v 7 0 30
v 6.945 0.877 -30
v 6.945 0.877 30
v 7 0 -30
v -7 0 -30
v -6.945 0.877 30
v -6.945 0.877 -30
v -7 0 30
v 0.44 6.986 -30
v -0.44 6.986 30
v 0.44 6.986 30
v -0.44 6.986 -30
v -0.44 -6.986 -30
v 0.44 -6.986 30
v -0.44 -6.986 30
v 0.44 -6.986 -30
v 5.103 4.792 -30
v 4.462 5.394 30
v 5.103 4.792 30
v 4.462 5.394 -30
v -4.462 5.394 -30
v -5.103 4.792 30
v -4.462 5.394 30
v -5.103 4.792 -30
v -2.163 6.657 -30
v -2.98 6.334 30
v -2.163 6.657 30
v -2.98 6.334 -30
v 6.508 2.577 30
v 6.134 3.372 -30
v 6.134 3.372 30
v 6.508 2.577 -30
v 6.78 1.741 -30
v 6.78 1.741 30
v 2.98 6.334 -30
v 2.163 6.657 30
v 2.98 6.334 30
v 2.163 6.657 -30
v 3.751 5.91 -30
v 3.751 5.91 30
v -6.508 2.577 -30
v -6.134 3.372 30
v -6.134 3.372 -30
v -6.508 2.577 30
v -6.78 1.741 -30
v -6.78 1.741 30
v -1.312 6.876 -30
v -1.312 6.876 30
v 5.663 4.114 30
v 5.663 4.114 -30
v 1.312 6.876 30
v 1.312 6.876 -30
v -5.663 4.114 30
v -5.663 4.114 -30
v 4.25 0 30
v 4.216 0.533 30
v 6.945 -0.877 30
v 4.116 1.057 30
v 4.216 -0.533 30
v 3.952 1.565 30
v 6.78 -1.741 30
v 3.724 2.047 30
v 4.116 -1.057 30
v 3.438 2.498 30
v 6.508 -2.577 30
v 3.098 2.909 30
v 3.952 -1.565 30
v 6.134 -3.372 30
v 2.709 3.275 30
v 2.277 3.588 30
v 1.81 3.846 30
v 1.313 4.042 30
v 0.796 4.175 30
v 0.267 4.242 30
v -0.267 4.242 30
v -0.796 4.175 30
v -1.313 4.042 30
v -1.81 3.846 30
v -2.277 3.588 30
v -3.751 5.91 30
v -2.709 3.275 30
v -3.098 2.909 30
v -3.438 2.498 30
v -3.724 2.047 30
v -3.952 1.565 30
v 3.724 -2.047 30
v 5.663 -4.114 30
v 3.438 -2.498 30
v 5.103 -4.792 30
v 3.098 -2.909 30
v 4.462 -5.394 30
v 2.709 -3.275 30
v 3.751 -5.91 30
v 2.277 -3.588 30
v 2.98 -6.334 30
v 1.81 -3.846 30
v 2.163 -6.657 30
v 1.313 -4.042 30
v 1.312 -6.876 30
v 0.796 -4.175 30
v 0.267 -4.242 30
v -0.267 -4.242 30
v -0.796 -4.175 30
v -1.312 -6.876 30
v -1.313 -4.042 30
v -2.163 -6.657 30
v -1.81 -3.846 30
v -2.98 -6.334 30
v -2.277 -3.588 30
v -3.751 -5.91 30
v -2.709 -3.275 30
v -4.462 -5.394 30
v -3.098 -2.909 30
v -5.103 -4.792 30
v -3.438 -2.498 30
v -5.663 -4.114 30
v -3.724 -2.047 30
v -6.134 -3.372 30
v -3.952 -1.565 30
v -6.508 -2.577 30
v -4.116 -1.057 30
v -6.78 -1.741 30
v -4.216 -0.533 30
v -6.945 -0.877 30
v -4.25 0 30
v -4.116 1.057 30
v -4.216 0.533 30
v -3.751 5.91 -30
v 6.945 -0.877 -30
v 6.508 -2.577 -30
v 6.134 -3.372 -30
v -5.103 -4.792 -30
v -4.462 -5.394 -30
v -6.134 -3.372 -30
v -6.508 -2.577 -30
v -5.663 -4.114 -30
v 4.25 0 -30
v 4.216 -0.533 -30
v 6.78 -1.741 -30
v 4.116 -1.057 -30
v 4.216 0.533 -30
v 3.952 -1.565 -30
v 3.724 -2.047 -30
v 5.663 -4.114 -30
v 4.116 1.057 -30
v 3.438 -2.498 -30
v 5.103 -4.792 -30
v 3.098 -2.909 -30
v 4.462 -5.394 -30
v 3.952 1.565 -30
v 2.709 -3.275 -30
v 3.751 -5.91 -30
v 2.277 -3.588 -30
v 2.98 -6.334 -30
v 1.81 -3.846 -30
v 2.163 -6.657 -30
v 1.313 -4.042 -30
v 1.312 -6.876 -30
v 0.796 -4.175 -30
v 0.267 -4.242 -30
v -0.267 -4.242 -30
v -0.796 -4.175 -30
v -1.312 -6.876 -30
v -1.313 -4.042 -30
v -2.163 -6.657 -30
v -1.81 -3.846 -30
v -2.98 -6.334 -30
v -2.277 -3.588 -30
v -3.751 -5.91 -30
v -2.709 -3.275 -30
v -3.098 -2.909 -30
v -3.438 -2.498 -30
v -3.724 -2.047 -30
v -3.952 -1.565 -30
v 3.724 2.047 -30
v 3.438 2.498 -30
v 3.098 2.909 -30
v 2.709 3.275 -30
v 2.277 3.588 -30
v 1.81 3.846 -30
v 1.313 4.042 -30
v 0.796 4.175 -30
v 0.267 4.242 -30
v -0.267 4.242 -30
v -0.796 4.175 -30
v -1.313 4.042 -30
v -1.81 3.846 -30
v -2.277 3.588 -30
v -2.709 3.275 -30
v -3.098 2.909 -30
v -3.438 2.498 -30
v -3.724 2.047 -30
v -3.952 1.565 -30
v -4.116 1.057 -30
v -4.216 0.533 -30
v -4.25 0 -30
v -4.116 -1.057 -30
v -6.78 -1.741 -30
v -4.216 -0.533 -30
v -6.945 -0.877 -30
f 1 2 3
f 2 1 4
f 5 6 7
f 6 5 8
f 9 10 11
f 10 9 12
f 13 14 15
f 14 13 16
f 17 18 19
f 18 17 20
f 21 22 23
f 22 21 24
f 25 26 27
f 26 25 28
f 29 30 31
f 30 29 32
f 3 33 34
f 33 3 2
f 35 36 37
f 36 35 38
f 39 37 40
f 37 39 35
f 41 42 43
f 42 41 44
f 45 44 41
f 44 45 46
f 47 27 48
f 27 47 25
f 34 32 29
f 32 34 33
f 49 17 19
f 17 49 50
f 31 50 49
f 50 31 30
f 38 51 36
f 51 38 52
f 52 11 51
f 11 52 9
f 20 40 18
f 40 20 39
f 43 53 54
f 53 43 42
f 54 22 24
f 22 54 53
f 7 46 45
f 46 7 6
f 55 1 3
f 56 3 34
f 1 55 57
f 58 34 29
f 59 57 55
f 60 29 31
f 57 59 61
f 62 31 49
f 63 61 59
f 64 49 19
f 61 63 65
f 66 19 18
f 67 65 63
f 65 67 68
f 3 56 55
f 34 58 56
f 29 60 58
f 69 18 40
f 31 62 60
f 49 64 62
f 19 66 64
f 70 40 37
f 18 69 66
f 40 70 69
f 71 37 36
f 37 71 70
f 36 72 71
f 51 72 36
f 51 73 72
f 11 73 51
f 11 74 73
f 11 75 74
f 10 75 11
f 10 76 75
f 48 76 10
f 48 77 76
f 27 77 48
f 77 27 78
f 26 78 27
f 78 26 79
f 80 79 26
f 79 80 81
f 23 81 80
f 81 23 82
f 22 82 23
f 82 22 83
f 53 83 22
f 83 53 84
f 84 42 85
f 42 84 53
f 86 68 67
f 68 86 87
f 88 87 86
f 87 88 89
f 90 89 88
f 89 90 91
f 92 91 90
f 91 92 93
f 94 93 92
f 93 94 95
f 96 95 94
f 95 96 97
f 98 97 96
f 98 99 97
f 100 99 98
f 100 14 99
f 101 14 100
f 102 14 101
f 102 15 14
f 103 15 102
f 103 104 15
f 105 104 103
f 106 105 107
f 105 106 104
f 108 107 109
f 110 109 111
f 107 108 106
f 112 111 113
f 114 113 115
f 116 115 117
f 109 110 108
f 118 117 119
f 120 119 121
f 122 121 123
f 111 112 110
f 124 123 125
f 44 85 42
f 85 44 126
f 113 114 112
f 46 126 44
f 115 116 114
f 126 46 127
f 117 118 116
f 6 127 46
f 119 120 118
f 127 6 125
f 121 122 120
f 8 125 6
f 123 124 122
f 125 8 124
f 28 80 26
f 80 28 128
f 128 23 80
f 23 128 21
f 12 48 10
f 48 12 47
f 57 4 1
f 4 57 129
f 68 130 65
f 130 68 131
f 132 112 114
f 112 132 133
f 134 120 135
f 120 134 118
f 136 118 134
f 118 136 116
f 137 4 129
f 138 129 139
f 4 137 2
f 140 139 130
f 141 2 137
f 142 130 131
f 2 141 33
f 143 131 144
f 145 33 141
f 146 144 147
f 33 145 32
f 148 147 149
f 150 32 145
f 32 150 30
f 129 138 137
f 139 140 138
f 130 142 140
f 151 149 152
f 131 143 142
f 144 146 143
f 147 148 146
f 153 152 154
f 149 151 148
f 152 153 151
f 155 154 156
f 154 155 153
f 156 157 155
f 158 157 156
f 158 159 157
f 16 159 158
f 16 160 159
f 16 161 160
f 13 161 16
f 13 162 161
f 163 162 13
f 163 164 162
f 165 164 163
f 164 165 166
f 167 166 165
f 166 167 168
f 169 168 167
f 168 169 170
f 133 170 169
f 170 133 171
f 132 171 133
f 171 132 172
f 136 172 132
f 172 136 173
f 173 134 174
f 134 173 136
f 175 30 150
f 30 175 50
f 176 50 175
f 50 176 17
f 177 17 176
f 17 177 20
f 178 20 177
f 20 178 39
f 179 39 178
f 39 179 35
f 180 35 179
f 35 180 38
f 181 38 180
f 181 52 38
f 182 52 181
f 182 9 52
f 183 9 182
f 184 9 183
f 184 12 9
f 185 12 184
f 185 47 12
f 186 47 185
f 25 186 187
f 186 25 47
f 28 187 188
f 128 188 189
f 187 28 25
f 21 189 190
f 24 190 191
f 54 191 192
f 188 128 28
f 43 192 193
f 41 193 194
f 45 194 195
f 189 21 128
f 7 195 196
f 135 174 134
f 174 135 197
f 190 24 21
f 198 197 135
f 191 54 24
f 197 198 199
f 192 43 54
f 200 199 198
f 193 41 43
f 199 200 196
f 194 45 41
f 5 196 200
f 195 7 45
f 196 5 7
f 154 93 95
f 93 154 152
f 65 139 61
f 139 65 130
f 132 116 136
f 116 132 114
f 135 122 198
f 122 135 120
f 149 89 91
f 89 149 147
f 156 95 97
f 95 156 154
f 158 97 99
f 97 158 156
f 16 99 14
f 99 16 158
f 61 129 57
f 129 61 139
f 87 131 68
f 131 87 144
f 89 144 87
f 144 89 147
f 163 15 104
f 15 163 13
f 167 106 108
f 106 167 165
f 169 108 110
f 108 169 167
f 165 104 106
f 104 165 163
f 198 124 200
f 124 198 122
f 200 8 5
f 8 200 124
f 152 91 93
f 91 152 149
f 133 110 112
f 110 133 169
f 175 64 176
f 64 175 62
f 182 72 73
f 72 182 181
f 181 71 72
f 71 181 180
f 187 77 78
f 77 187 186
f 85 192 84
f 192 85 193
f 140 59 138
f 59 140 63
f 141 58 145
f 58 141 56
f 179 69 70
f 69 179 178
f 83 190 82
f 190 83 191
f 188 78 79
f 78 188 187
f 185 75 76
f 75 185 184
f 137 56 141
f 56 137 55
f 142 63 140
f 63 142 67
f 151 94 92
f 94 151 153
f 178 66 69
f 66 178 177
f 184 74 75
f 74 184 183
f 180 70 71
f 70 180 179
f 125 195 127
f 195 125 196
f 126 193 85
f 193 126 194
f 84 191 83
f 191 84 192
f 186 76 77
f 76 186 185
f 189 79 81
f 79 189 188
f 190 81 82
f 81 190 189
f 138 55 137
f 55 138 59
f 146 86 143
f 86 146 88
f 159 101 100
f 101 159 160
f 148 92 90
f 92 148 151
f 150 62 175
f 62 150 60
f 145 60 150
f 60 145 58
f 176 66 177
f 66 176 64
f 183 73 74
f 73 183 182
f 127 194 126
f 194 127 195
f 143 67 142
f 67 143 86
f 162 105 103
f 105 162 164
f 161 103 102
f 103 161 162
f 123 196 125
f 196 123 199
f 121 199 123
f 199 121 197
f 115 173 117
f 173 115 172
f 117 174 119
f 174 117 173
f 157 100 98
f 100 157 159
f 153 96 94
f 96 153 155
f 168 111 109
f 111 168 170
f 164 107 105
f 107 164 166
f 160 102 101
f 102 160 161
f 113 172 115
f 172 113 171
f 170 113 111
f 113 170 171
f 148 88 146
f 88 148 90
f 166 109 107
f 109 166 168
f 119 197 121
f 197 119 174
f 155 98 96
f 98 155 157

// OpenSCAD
$fn = 50;


difference() {
	union() {
		translate(v = [0, 0, -30.0000000000]) {
			cylinder(h = 60, r = 7.0000000000);
		}
	}
	union() {
		translate(v = [0, 0, -100.0000000000]) {
			cylinder(h = 200, r = 4.2500000000);
		}
	}
}
